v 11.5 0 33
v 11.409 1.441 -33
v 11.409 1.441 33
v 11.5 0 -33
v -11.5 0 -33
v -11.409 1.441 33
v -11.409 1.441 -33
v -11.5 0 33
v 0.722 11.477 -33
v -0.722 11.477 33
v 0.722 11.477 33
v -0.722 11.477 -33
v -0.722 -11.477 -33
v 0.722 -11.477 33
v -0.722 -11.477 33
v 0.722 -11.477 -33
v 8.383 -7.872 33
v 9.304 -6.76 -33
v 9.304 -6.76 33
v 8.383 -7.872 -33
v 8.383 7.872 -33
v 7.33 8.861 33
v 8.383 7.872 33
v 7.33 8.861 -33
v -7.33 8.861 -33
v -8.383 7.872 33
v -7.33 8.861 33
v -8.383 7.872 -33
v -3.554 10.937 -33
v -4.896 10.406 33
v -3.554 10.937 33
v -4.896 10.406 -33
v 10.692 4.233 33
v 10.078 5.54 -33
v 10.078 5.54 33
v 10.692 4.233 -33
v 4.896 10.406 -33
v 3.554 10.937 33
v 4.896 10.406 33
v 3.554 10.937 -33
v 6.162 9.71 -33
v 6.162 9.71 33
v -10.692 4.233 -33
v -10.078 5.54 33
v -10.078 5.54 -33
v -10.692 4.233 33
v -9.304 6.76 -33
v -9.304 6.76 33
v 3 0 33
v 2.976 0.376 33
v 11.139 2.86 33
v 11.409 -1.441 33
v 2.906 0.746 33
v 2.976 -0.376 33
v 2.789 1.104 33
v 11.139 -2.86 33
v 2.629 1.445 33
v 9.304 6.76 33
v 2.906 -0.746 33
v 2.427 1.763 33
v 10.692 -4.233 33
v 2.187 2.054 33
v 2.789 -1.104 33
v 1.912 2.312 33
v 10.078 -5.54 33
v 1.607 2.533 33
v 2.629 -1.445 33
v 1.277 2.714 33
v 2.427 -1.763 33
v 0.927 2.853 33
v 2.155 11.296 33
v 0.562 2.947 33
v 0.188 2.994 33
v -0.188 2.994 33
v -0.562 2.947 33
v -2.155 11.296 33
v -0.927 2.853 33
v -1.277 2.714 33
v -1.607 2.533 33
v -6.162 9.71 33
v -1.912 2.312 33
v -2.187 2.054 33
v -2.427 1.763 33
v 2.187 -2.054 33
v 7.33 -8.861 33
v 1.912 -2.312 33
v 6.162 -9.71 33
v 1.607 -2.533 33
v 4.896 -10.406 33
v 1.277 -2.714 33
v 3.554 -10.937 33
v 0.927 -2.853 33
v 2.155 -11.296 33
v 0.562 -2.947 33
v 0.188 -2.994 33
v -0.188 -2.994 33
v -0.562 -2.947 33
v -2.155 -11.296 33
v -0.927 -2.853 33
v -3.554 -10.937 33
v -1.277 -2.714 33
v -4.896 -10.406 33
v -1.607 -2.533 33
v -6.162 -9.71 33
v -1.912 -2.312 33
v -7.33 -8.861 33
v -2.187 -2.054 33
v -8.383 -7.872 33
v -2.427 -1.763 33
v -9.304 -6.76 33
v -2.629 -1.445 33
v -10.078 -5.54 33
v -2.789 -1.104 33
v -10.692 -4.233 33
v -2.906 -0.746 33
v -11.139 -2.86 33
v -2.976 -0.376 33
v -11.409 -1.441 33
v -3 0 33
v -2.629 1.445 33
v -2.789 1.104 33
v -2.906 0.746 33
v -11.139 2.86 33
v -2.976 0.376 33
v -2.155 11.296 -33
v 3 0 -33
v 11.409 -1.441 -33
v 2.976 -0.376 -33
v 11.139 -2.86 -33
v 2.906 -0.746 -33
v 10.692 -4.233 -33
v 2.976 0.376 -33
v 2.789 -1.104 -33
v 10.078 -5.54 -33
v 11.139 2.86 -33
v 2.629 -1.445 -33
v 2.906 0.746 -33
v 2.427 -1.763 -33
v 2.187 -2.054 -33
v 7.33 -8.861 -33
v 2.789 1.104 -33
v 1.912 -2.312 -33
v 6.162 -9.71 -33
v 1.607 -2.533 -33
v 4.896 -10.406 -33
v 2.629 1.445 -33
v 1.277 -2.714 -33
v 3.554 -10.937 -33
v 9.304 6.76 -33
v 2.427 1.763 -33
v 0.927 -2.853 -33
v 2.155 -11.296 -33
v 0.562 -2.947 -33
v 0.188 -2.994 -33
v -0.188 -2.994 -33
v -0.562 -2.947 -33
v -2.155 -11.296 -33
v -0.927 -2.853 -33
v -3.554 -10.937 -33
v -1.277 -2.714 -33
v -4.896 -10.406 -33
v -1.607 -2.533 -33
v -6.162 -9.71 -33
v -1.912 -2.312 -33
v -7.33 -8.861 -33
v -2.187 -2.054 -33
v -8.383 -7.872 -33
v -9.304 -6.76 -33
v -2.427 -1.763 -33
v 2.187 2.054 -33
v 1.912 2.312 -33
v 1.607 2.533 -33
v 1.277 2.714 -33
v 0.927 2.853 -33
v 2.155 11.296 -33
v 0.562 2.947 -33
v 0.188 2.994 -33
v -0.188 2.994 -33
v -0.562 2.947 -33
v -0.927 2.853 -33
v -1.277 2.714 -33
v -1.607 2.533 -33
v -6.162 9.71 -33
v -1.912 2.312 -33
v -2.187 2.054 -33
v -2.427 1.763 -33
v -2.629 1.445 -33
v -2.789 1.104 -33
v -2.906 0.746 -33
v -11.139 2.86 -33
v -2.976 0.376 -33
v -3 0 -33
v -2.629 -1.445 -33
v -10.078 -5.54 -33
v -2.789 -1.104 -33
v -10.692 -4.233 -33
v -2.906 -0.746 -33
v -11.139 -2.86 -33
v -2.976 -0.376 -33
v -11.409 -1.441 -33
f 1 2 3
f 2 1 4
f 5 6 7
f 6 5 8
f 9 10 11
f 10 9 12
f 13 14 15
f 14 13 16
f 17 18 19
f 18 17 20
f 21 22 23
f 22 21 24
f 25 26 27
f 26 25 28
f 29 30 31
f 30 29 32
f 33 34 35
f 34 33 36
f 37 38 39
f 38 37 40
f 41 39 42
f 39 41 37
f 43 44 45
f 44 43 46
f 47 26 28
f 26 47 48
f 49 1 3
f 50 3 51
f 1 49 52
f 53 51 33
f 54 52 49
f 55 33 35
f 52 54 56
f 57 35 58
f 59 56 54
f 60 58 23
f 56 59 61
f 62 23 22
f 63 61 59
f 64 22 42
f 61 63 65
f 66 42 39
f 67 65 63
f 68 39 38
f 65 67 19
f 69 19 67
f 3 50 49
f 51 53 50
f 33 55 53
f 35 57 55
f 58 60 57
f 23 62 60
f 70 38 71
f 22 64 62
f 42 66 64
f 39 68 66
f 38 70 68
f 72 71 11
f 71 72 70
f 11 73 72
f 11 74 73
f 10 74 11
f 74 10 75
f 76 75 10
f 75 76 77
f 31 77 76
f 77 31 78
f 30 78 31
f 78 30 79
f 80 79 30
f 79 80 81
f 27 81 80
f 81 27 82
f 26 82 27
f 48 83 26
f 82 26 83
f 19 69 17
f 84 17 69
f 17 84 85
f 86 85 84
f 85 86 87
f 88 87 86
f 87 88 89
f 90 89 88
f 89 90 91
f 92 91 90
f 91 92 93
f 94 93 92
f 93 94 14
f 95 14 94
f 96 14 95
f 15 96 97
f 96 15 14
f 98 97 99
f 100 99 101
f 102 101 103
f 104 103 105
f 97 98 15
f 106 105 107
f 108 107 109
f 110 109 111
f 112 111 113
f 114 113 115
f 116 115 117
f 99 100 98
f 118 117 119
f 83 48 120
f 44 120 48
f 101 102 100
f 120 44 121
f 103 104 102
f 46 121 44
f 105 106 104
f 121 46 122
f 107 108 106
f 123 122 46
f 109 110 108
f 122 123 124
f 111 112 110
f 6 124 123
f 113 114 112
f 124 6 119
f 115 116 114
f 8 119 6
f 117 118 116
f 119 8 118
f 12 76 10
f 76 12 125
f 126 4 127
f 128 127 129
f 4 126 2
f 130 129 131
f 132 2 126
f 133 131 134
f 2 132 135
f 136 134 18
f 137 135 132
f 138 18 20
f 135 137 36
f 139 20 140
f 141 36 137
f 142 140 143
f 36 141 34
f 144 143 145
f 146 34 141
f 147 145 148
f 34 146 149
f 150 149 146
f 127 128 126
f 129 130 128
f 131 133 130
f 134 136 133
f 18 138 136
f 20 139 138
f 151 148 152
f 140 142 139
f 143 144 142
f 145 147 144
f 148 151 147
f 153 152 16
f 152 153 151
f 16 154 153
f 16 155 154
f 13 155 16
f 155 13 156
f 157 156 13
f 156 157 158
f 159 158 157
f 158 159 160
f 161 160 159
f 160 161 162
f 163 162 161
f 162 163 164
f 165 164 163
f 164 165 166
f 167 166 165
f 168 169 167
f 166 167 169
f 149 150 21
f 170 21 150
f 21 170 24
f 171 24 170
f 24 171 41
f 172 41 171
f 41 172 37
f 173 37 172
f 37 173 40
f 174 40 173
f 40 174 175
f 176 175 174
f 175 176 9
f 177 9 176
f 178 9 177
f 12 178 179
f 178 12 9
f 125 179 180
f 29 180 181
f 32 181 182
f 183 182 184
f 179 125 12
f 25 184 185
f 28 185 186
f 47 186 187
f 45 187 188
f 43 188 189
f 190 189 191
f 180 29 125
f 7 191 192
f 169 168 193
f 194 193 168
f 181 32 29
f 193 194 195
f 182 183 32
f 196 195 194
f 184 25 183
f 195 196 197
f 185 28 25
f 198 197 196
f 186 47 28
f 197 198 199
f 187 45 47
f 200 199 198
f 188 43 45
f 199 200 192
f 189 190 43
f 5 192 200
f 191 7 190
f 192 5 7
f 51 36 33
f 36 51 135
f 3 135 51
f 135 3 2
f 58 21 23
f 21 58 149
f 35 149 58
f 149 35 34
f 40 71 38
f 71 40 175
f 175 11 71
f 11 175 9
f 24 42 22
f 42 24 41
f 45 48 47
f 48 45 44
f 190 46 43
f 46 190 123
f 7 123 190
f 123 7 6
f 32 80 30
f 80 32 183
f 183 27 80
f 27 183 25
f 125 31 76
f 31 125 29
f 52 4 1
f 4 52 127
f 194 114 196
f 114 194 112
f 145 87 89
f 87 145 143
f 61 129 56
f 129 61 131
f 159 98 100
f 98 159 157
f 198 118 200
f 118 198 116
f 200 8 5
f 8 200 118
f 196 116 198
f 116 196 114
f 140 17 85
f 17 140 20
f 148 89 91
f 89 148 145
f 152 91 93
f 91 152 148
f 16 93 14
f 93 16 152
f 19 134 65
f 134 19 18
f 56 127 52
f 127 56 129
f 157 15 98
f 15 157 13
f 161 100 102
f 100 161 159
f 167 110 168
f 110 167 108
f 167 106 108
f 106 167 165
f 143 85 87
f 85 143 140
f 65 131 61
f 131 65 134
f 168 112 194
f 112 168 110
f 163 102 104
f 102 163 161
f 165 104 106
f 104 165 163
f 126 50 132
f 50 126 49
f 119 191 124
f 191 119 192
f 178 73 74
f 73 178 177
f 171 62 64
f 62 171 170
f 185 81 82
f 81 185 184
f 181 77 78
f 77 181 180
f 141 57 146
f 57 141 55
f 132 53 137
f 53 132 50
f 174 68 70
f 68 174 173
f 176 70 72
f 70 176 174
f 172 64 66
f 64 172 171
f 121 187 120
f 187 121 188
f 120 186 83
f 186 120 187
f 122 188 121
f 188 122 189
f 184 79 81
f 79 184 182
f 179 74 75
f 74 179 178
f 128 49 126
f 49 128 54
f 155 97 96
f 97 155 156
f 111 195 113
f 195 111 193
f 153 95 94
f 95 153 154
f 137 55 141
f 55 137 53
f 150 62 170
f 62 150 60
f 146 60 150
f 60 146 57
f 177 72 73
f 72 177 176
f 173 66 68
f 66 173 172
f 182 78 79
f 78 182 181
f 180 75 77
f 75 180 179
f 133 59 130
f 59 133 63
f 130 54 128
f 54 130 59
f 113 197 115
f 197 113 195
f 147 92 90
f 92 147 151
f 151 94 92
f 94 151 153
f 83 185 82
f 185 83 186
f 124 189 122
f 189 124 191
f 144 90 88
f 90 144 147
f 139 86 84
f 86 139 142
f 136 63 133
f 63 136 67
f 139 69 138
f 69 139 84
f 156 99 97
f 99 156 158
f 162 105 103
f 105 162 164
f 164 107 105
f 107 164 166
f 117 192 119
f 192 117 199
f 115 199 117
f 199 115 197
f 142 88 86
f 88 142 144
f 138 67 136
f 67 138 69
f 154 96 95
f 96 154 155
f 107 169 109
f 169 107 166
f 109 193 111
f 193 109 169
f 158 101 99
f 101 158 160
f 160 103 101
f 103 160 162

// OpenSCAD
$fn = 50;


difference() {
	union() {
		translate(v = [0, 0, -33.0000000000]) {
			cylinder(h = 66, r = 11.5000000000);
		}
	}
	union() {
		translate(v = [0, 0, -100.0000000000]) {
			cylinder(h = 200, r = 3);
		}
	}
}
